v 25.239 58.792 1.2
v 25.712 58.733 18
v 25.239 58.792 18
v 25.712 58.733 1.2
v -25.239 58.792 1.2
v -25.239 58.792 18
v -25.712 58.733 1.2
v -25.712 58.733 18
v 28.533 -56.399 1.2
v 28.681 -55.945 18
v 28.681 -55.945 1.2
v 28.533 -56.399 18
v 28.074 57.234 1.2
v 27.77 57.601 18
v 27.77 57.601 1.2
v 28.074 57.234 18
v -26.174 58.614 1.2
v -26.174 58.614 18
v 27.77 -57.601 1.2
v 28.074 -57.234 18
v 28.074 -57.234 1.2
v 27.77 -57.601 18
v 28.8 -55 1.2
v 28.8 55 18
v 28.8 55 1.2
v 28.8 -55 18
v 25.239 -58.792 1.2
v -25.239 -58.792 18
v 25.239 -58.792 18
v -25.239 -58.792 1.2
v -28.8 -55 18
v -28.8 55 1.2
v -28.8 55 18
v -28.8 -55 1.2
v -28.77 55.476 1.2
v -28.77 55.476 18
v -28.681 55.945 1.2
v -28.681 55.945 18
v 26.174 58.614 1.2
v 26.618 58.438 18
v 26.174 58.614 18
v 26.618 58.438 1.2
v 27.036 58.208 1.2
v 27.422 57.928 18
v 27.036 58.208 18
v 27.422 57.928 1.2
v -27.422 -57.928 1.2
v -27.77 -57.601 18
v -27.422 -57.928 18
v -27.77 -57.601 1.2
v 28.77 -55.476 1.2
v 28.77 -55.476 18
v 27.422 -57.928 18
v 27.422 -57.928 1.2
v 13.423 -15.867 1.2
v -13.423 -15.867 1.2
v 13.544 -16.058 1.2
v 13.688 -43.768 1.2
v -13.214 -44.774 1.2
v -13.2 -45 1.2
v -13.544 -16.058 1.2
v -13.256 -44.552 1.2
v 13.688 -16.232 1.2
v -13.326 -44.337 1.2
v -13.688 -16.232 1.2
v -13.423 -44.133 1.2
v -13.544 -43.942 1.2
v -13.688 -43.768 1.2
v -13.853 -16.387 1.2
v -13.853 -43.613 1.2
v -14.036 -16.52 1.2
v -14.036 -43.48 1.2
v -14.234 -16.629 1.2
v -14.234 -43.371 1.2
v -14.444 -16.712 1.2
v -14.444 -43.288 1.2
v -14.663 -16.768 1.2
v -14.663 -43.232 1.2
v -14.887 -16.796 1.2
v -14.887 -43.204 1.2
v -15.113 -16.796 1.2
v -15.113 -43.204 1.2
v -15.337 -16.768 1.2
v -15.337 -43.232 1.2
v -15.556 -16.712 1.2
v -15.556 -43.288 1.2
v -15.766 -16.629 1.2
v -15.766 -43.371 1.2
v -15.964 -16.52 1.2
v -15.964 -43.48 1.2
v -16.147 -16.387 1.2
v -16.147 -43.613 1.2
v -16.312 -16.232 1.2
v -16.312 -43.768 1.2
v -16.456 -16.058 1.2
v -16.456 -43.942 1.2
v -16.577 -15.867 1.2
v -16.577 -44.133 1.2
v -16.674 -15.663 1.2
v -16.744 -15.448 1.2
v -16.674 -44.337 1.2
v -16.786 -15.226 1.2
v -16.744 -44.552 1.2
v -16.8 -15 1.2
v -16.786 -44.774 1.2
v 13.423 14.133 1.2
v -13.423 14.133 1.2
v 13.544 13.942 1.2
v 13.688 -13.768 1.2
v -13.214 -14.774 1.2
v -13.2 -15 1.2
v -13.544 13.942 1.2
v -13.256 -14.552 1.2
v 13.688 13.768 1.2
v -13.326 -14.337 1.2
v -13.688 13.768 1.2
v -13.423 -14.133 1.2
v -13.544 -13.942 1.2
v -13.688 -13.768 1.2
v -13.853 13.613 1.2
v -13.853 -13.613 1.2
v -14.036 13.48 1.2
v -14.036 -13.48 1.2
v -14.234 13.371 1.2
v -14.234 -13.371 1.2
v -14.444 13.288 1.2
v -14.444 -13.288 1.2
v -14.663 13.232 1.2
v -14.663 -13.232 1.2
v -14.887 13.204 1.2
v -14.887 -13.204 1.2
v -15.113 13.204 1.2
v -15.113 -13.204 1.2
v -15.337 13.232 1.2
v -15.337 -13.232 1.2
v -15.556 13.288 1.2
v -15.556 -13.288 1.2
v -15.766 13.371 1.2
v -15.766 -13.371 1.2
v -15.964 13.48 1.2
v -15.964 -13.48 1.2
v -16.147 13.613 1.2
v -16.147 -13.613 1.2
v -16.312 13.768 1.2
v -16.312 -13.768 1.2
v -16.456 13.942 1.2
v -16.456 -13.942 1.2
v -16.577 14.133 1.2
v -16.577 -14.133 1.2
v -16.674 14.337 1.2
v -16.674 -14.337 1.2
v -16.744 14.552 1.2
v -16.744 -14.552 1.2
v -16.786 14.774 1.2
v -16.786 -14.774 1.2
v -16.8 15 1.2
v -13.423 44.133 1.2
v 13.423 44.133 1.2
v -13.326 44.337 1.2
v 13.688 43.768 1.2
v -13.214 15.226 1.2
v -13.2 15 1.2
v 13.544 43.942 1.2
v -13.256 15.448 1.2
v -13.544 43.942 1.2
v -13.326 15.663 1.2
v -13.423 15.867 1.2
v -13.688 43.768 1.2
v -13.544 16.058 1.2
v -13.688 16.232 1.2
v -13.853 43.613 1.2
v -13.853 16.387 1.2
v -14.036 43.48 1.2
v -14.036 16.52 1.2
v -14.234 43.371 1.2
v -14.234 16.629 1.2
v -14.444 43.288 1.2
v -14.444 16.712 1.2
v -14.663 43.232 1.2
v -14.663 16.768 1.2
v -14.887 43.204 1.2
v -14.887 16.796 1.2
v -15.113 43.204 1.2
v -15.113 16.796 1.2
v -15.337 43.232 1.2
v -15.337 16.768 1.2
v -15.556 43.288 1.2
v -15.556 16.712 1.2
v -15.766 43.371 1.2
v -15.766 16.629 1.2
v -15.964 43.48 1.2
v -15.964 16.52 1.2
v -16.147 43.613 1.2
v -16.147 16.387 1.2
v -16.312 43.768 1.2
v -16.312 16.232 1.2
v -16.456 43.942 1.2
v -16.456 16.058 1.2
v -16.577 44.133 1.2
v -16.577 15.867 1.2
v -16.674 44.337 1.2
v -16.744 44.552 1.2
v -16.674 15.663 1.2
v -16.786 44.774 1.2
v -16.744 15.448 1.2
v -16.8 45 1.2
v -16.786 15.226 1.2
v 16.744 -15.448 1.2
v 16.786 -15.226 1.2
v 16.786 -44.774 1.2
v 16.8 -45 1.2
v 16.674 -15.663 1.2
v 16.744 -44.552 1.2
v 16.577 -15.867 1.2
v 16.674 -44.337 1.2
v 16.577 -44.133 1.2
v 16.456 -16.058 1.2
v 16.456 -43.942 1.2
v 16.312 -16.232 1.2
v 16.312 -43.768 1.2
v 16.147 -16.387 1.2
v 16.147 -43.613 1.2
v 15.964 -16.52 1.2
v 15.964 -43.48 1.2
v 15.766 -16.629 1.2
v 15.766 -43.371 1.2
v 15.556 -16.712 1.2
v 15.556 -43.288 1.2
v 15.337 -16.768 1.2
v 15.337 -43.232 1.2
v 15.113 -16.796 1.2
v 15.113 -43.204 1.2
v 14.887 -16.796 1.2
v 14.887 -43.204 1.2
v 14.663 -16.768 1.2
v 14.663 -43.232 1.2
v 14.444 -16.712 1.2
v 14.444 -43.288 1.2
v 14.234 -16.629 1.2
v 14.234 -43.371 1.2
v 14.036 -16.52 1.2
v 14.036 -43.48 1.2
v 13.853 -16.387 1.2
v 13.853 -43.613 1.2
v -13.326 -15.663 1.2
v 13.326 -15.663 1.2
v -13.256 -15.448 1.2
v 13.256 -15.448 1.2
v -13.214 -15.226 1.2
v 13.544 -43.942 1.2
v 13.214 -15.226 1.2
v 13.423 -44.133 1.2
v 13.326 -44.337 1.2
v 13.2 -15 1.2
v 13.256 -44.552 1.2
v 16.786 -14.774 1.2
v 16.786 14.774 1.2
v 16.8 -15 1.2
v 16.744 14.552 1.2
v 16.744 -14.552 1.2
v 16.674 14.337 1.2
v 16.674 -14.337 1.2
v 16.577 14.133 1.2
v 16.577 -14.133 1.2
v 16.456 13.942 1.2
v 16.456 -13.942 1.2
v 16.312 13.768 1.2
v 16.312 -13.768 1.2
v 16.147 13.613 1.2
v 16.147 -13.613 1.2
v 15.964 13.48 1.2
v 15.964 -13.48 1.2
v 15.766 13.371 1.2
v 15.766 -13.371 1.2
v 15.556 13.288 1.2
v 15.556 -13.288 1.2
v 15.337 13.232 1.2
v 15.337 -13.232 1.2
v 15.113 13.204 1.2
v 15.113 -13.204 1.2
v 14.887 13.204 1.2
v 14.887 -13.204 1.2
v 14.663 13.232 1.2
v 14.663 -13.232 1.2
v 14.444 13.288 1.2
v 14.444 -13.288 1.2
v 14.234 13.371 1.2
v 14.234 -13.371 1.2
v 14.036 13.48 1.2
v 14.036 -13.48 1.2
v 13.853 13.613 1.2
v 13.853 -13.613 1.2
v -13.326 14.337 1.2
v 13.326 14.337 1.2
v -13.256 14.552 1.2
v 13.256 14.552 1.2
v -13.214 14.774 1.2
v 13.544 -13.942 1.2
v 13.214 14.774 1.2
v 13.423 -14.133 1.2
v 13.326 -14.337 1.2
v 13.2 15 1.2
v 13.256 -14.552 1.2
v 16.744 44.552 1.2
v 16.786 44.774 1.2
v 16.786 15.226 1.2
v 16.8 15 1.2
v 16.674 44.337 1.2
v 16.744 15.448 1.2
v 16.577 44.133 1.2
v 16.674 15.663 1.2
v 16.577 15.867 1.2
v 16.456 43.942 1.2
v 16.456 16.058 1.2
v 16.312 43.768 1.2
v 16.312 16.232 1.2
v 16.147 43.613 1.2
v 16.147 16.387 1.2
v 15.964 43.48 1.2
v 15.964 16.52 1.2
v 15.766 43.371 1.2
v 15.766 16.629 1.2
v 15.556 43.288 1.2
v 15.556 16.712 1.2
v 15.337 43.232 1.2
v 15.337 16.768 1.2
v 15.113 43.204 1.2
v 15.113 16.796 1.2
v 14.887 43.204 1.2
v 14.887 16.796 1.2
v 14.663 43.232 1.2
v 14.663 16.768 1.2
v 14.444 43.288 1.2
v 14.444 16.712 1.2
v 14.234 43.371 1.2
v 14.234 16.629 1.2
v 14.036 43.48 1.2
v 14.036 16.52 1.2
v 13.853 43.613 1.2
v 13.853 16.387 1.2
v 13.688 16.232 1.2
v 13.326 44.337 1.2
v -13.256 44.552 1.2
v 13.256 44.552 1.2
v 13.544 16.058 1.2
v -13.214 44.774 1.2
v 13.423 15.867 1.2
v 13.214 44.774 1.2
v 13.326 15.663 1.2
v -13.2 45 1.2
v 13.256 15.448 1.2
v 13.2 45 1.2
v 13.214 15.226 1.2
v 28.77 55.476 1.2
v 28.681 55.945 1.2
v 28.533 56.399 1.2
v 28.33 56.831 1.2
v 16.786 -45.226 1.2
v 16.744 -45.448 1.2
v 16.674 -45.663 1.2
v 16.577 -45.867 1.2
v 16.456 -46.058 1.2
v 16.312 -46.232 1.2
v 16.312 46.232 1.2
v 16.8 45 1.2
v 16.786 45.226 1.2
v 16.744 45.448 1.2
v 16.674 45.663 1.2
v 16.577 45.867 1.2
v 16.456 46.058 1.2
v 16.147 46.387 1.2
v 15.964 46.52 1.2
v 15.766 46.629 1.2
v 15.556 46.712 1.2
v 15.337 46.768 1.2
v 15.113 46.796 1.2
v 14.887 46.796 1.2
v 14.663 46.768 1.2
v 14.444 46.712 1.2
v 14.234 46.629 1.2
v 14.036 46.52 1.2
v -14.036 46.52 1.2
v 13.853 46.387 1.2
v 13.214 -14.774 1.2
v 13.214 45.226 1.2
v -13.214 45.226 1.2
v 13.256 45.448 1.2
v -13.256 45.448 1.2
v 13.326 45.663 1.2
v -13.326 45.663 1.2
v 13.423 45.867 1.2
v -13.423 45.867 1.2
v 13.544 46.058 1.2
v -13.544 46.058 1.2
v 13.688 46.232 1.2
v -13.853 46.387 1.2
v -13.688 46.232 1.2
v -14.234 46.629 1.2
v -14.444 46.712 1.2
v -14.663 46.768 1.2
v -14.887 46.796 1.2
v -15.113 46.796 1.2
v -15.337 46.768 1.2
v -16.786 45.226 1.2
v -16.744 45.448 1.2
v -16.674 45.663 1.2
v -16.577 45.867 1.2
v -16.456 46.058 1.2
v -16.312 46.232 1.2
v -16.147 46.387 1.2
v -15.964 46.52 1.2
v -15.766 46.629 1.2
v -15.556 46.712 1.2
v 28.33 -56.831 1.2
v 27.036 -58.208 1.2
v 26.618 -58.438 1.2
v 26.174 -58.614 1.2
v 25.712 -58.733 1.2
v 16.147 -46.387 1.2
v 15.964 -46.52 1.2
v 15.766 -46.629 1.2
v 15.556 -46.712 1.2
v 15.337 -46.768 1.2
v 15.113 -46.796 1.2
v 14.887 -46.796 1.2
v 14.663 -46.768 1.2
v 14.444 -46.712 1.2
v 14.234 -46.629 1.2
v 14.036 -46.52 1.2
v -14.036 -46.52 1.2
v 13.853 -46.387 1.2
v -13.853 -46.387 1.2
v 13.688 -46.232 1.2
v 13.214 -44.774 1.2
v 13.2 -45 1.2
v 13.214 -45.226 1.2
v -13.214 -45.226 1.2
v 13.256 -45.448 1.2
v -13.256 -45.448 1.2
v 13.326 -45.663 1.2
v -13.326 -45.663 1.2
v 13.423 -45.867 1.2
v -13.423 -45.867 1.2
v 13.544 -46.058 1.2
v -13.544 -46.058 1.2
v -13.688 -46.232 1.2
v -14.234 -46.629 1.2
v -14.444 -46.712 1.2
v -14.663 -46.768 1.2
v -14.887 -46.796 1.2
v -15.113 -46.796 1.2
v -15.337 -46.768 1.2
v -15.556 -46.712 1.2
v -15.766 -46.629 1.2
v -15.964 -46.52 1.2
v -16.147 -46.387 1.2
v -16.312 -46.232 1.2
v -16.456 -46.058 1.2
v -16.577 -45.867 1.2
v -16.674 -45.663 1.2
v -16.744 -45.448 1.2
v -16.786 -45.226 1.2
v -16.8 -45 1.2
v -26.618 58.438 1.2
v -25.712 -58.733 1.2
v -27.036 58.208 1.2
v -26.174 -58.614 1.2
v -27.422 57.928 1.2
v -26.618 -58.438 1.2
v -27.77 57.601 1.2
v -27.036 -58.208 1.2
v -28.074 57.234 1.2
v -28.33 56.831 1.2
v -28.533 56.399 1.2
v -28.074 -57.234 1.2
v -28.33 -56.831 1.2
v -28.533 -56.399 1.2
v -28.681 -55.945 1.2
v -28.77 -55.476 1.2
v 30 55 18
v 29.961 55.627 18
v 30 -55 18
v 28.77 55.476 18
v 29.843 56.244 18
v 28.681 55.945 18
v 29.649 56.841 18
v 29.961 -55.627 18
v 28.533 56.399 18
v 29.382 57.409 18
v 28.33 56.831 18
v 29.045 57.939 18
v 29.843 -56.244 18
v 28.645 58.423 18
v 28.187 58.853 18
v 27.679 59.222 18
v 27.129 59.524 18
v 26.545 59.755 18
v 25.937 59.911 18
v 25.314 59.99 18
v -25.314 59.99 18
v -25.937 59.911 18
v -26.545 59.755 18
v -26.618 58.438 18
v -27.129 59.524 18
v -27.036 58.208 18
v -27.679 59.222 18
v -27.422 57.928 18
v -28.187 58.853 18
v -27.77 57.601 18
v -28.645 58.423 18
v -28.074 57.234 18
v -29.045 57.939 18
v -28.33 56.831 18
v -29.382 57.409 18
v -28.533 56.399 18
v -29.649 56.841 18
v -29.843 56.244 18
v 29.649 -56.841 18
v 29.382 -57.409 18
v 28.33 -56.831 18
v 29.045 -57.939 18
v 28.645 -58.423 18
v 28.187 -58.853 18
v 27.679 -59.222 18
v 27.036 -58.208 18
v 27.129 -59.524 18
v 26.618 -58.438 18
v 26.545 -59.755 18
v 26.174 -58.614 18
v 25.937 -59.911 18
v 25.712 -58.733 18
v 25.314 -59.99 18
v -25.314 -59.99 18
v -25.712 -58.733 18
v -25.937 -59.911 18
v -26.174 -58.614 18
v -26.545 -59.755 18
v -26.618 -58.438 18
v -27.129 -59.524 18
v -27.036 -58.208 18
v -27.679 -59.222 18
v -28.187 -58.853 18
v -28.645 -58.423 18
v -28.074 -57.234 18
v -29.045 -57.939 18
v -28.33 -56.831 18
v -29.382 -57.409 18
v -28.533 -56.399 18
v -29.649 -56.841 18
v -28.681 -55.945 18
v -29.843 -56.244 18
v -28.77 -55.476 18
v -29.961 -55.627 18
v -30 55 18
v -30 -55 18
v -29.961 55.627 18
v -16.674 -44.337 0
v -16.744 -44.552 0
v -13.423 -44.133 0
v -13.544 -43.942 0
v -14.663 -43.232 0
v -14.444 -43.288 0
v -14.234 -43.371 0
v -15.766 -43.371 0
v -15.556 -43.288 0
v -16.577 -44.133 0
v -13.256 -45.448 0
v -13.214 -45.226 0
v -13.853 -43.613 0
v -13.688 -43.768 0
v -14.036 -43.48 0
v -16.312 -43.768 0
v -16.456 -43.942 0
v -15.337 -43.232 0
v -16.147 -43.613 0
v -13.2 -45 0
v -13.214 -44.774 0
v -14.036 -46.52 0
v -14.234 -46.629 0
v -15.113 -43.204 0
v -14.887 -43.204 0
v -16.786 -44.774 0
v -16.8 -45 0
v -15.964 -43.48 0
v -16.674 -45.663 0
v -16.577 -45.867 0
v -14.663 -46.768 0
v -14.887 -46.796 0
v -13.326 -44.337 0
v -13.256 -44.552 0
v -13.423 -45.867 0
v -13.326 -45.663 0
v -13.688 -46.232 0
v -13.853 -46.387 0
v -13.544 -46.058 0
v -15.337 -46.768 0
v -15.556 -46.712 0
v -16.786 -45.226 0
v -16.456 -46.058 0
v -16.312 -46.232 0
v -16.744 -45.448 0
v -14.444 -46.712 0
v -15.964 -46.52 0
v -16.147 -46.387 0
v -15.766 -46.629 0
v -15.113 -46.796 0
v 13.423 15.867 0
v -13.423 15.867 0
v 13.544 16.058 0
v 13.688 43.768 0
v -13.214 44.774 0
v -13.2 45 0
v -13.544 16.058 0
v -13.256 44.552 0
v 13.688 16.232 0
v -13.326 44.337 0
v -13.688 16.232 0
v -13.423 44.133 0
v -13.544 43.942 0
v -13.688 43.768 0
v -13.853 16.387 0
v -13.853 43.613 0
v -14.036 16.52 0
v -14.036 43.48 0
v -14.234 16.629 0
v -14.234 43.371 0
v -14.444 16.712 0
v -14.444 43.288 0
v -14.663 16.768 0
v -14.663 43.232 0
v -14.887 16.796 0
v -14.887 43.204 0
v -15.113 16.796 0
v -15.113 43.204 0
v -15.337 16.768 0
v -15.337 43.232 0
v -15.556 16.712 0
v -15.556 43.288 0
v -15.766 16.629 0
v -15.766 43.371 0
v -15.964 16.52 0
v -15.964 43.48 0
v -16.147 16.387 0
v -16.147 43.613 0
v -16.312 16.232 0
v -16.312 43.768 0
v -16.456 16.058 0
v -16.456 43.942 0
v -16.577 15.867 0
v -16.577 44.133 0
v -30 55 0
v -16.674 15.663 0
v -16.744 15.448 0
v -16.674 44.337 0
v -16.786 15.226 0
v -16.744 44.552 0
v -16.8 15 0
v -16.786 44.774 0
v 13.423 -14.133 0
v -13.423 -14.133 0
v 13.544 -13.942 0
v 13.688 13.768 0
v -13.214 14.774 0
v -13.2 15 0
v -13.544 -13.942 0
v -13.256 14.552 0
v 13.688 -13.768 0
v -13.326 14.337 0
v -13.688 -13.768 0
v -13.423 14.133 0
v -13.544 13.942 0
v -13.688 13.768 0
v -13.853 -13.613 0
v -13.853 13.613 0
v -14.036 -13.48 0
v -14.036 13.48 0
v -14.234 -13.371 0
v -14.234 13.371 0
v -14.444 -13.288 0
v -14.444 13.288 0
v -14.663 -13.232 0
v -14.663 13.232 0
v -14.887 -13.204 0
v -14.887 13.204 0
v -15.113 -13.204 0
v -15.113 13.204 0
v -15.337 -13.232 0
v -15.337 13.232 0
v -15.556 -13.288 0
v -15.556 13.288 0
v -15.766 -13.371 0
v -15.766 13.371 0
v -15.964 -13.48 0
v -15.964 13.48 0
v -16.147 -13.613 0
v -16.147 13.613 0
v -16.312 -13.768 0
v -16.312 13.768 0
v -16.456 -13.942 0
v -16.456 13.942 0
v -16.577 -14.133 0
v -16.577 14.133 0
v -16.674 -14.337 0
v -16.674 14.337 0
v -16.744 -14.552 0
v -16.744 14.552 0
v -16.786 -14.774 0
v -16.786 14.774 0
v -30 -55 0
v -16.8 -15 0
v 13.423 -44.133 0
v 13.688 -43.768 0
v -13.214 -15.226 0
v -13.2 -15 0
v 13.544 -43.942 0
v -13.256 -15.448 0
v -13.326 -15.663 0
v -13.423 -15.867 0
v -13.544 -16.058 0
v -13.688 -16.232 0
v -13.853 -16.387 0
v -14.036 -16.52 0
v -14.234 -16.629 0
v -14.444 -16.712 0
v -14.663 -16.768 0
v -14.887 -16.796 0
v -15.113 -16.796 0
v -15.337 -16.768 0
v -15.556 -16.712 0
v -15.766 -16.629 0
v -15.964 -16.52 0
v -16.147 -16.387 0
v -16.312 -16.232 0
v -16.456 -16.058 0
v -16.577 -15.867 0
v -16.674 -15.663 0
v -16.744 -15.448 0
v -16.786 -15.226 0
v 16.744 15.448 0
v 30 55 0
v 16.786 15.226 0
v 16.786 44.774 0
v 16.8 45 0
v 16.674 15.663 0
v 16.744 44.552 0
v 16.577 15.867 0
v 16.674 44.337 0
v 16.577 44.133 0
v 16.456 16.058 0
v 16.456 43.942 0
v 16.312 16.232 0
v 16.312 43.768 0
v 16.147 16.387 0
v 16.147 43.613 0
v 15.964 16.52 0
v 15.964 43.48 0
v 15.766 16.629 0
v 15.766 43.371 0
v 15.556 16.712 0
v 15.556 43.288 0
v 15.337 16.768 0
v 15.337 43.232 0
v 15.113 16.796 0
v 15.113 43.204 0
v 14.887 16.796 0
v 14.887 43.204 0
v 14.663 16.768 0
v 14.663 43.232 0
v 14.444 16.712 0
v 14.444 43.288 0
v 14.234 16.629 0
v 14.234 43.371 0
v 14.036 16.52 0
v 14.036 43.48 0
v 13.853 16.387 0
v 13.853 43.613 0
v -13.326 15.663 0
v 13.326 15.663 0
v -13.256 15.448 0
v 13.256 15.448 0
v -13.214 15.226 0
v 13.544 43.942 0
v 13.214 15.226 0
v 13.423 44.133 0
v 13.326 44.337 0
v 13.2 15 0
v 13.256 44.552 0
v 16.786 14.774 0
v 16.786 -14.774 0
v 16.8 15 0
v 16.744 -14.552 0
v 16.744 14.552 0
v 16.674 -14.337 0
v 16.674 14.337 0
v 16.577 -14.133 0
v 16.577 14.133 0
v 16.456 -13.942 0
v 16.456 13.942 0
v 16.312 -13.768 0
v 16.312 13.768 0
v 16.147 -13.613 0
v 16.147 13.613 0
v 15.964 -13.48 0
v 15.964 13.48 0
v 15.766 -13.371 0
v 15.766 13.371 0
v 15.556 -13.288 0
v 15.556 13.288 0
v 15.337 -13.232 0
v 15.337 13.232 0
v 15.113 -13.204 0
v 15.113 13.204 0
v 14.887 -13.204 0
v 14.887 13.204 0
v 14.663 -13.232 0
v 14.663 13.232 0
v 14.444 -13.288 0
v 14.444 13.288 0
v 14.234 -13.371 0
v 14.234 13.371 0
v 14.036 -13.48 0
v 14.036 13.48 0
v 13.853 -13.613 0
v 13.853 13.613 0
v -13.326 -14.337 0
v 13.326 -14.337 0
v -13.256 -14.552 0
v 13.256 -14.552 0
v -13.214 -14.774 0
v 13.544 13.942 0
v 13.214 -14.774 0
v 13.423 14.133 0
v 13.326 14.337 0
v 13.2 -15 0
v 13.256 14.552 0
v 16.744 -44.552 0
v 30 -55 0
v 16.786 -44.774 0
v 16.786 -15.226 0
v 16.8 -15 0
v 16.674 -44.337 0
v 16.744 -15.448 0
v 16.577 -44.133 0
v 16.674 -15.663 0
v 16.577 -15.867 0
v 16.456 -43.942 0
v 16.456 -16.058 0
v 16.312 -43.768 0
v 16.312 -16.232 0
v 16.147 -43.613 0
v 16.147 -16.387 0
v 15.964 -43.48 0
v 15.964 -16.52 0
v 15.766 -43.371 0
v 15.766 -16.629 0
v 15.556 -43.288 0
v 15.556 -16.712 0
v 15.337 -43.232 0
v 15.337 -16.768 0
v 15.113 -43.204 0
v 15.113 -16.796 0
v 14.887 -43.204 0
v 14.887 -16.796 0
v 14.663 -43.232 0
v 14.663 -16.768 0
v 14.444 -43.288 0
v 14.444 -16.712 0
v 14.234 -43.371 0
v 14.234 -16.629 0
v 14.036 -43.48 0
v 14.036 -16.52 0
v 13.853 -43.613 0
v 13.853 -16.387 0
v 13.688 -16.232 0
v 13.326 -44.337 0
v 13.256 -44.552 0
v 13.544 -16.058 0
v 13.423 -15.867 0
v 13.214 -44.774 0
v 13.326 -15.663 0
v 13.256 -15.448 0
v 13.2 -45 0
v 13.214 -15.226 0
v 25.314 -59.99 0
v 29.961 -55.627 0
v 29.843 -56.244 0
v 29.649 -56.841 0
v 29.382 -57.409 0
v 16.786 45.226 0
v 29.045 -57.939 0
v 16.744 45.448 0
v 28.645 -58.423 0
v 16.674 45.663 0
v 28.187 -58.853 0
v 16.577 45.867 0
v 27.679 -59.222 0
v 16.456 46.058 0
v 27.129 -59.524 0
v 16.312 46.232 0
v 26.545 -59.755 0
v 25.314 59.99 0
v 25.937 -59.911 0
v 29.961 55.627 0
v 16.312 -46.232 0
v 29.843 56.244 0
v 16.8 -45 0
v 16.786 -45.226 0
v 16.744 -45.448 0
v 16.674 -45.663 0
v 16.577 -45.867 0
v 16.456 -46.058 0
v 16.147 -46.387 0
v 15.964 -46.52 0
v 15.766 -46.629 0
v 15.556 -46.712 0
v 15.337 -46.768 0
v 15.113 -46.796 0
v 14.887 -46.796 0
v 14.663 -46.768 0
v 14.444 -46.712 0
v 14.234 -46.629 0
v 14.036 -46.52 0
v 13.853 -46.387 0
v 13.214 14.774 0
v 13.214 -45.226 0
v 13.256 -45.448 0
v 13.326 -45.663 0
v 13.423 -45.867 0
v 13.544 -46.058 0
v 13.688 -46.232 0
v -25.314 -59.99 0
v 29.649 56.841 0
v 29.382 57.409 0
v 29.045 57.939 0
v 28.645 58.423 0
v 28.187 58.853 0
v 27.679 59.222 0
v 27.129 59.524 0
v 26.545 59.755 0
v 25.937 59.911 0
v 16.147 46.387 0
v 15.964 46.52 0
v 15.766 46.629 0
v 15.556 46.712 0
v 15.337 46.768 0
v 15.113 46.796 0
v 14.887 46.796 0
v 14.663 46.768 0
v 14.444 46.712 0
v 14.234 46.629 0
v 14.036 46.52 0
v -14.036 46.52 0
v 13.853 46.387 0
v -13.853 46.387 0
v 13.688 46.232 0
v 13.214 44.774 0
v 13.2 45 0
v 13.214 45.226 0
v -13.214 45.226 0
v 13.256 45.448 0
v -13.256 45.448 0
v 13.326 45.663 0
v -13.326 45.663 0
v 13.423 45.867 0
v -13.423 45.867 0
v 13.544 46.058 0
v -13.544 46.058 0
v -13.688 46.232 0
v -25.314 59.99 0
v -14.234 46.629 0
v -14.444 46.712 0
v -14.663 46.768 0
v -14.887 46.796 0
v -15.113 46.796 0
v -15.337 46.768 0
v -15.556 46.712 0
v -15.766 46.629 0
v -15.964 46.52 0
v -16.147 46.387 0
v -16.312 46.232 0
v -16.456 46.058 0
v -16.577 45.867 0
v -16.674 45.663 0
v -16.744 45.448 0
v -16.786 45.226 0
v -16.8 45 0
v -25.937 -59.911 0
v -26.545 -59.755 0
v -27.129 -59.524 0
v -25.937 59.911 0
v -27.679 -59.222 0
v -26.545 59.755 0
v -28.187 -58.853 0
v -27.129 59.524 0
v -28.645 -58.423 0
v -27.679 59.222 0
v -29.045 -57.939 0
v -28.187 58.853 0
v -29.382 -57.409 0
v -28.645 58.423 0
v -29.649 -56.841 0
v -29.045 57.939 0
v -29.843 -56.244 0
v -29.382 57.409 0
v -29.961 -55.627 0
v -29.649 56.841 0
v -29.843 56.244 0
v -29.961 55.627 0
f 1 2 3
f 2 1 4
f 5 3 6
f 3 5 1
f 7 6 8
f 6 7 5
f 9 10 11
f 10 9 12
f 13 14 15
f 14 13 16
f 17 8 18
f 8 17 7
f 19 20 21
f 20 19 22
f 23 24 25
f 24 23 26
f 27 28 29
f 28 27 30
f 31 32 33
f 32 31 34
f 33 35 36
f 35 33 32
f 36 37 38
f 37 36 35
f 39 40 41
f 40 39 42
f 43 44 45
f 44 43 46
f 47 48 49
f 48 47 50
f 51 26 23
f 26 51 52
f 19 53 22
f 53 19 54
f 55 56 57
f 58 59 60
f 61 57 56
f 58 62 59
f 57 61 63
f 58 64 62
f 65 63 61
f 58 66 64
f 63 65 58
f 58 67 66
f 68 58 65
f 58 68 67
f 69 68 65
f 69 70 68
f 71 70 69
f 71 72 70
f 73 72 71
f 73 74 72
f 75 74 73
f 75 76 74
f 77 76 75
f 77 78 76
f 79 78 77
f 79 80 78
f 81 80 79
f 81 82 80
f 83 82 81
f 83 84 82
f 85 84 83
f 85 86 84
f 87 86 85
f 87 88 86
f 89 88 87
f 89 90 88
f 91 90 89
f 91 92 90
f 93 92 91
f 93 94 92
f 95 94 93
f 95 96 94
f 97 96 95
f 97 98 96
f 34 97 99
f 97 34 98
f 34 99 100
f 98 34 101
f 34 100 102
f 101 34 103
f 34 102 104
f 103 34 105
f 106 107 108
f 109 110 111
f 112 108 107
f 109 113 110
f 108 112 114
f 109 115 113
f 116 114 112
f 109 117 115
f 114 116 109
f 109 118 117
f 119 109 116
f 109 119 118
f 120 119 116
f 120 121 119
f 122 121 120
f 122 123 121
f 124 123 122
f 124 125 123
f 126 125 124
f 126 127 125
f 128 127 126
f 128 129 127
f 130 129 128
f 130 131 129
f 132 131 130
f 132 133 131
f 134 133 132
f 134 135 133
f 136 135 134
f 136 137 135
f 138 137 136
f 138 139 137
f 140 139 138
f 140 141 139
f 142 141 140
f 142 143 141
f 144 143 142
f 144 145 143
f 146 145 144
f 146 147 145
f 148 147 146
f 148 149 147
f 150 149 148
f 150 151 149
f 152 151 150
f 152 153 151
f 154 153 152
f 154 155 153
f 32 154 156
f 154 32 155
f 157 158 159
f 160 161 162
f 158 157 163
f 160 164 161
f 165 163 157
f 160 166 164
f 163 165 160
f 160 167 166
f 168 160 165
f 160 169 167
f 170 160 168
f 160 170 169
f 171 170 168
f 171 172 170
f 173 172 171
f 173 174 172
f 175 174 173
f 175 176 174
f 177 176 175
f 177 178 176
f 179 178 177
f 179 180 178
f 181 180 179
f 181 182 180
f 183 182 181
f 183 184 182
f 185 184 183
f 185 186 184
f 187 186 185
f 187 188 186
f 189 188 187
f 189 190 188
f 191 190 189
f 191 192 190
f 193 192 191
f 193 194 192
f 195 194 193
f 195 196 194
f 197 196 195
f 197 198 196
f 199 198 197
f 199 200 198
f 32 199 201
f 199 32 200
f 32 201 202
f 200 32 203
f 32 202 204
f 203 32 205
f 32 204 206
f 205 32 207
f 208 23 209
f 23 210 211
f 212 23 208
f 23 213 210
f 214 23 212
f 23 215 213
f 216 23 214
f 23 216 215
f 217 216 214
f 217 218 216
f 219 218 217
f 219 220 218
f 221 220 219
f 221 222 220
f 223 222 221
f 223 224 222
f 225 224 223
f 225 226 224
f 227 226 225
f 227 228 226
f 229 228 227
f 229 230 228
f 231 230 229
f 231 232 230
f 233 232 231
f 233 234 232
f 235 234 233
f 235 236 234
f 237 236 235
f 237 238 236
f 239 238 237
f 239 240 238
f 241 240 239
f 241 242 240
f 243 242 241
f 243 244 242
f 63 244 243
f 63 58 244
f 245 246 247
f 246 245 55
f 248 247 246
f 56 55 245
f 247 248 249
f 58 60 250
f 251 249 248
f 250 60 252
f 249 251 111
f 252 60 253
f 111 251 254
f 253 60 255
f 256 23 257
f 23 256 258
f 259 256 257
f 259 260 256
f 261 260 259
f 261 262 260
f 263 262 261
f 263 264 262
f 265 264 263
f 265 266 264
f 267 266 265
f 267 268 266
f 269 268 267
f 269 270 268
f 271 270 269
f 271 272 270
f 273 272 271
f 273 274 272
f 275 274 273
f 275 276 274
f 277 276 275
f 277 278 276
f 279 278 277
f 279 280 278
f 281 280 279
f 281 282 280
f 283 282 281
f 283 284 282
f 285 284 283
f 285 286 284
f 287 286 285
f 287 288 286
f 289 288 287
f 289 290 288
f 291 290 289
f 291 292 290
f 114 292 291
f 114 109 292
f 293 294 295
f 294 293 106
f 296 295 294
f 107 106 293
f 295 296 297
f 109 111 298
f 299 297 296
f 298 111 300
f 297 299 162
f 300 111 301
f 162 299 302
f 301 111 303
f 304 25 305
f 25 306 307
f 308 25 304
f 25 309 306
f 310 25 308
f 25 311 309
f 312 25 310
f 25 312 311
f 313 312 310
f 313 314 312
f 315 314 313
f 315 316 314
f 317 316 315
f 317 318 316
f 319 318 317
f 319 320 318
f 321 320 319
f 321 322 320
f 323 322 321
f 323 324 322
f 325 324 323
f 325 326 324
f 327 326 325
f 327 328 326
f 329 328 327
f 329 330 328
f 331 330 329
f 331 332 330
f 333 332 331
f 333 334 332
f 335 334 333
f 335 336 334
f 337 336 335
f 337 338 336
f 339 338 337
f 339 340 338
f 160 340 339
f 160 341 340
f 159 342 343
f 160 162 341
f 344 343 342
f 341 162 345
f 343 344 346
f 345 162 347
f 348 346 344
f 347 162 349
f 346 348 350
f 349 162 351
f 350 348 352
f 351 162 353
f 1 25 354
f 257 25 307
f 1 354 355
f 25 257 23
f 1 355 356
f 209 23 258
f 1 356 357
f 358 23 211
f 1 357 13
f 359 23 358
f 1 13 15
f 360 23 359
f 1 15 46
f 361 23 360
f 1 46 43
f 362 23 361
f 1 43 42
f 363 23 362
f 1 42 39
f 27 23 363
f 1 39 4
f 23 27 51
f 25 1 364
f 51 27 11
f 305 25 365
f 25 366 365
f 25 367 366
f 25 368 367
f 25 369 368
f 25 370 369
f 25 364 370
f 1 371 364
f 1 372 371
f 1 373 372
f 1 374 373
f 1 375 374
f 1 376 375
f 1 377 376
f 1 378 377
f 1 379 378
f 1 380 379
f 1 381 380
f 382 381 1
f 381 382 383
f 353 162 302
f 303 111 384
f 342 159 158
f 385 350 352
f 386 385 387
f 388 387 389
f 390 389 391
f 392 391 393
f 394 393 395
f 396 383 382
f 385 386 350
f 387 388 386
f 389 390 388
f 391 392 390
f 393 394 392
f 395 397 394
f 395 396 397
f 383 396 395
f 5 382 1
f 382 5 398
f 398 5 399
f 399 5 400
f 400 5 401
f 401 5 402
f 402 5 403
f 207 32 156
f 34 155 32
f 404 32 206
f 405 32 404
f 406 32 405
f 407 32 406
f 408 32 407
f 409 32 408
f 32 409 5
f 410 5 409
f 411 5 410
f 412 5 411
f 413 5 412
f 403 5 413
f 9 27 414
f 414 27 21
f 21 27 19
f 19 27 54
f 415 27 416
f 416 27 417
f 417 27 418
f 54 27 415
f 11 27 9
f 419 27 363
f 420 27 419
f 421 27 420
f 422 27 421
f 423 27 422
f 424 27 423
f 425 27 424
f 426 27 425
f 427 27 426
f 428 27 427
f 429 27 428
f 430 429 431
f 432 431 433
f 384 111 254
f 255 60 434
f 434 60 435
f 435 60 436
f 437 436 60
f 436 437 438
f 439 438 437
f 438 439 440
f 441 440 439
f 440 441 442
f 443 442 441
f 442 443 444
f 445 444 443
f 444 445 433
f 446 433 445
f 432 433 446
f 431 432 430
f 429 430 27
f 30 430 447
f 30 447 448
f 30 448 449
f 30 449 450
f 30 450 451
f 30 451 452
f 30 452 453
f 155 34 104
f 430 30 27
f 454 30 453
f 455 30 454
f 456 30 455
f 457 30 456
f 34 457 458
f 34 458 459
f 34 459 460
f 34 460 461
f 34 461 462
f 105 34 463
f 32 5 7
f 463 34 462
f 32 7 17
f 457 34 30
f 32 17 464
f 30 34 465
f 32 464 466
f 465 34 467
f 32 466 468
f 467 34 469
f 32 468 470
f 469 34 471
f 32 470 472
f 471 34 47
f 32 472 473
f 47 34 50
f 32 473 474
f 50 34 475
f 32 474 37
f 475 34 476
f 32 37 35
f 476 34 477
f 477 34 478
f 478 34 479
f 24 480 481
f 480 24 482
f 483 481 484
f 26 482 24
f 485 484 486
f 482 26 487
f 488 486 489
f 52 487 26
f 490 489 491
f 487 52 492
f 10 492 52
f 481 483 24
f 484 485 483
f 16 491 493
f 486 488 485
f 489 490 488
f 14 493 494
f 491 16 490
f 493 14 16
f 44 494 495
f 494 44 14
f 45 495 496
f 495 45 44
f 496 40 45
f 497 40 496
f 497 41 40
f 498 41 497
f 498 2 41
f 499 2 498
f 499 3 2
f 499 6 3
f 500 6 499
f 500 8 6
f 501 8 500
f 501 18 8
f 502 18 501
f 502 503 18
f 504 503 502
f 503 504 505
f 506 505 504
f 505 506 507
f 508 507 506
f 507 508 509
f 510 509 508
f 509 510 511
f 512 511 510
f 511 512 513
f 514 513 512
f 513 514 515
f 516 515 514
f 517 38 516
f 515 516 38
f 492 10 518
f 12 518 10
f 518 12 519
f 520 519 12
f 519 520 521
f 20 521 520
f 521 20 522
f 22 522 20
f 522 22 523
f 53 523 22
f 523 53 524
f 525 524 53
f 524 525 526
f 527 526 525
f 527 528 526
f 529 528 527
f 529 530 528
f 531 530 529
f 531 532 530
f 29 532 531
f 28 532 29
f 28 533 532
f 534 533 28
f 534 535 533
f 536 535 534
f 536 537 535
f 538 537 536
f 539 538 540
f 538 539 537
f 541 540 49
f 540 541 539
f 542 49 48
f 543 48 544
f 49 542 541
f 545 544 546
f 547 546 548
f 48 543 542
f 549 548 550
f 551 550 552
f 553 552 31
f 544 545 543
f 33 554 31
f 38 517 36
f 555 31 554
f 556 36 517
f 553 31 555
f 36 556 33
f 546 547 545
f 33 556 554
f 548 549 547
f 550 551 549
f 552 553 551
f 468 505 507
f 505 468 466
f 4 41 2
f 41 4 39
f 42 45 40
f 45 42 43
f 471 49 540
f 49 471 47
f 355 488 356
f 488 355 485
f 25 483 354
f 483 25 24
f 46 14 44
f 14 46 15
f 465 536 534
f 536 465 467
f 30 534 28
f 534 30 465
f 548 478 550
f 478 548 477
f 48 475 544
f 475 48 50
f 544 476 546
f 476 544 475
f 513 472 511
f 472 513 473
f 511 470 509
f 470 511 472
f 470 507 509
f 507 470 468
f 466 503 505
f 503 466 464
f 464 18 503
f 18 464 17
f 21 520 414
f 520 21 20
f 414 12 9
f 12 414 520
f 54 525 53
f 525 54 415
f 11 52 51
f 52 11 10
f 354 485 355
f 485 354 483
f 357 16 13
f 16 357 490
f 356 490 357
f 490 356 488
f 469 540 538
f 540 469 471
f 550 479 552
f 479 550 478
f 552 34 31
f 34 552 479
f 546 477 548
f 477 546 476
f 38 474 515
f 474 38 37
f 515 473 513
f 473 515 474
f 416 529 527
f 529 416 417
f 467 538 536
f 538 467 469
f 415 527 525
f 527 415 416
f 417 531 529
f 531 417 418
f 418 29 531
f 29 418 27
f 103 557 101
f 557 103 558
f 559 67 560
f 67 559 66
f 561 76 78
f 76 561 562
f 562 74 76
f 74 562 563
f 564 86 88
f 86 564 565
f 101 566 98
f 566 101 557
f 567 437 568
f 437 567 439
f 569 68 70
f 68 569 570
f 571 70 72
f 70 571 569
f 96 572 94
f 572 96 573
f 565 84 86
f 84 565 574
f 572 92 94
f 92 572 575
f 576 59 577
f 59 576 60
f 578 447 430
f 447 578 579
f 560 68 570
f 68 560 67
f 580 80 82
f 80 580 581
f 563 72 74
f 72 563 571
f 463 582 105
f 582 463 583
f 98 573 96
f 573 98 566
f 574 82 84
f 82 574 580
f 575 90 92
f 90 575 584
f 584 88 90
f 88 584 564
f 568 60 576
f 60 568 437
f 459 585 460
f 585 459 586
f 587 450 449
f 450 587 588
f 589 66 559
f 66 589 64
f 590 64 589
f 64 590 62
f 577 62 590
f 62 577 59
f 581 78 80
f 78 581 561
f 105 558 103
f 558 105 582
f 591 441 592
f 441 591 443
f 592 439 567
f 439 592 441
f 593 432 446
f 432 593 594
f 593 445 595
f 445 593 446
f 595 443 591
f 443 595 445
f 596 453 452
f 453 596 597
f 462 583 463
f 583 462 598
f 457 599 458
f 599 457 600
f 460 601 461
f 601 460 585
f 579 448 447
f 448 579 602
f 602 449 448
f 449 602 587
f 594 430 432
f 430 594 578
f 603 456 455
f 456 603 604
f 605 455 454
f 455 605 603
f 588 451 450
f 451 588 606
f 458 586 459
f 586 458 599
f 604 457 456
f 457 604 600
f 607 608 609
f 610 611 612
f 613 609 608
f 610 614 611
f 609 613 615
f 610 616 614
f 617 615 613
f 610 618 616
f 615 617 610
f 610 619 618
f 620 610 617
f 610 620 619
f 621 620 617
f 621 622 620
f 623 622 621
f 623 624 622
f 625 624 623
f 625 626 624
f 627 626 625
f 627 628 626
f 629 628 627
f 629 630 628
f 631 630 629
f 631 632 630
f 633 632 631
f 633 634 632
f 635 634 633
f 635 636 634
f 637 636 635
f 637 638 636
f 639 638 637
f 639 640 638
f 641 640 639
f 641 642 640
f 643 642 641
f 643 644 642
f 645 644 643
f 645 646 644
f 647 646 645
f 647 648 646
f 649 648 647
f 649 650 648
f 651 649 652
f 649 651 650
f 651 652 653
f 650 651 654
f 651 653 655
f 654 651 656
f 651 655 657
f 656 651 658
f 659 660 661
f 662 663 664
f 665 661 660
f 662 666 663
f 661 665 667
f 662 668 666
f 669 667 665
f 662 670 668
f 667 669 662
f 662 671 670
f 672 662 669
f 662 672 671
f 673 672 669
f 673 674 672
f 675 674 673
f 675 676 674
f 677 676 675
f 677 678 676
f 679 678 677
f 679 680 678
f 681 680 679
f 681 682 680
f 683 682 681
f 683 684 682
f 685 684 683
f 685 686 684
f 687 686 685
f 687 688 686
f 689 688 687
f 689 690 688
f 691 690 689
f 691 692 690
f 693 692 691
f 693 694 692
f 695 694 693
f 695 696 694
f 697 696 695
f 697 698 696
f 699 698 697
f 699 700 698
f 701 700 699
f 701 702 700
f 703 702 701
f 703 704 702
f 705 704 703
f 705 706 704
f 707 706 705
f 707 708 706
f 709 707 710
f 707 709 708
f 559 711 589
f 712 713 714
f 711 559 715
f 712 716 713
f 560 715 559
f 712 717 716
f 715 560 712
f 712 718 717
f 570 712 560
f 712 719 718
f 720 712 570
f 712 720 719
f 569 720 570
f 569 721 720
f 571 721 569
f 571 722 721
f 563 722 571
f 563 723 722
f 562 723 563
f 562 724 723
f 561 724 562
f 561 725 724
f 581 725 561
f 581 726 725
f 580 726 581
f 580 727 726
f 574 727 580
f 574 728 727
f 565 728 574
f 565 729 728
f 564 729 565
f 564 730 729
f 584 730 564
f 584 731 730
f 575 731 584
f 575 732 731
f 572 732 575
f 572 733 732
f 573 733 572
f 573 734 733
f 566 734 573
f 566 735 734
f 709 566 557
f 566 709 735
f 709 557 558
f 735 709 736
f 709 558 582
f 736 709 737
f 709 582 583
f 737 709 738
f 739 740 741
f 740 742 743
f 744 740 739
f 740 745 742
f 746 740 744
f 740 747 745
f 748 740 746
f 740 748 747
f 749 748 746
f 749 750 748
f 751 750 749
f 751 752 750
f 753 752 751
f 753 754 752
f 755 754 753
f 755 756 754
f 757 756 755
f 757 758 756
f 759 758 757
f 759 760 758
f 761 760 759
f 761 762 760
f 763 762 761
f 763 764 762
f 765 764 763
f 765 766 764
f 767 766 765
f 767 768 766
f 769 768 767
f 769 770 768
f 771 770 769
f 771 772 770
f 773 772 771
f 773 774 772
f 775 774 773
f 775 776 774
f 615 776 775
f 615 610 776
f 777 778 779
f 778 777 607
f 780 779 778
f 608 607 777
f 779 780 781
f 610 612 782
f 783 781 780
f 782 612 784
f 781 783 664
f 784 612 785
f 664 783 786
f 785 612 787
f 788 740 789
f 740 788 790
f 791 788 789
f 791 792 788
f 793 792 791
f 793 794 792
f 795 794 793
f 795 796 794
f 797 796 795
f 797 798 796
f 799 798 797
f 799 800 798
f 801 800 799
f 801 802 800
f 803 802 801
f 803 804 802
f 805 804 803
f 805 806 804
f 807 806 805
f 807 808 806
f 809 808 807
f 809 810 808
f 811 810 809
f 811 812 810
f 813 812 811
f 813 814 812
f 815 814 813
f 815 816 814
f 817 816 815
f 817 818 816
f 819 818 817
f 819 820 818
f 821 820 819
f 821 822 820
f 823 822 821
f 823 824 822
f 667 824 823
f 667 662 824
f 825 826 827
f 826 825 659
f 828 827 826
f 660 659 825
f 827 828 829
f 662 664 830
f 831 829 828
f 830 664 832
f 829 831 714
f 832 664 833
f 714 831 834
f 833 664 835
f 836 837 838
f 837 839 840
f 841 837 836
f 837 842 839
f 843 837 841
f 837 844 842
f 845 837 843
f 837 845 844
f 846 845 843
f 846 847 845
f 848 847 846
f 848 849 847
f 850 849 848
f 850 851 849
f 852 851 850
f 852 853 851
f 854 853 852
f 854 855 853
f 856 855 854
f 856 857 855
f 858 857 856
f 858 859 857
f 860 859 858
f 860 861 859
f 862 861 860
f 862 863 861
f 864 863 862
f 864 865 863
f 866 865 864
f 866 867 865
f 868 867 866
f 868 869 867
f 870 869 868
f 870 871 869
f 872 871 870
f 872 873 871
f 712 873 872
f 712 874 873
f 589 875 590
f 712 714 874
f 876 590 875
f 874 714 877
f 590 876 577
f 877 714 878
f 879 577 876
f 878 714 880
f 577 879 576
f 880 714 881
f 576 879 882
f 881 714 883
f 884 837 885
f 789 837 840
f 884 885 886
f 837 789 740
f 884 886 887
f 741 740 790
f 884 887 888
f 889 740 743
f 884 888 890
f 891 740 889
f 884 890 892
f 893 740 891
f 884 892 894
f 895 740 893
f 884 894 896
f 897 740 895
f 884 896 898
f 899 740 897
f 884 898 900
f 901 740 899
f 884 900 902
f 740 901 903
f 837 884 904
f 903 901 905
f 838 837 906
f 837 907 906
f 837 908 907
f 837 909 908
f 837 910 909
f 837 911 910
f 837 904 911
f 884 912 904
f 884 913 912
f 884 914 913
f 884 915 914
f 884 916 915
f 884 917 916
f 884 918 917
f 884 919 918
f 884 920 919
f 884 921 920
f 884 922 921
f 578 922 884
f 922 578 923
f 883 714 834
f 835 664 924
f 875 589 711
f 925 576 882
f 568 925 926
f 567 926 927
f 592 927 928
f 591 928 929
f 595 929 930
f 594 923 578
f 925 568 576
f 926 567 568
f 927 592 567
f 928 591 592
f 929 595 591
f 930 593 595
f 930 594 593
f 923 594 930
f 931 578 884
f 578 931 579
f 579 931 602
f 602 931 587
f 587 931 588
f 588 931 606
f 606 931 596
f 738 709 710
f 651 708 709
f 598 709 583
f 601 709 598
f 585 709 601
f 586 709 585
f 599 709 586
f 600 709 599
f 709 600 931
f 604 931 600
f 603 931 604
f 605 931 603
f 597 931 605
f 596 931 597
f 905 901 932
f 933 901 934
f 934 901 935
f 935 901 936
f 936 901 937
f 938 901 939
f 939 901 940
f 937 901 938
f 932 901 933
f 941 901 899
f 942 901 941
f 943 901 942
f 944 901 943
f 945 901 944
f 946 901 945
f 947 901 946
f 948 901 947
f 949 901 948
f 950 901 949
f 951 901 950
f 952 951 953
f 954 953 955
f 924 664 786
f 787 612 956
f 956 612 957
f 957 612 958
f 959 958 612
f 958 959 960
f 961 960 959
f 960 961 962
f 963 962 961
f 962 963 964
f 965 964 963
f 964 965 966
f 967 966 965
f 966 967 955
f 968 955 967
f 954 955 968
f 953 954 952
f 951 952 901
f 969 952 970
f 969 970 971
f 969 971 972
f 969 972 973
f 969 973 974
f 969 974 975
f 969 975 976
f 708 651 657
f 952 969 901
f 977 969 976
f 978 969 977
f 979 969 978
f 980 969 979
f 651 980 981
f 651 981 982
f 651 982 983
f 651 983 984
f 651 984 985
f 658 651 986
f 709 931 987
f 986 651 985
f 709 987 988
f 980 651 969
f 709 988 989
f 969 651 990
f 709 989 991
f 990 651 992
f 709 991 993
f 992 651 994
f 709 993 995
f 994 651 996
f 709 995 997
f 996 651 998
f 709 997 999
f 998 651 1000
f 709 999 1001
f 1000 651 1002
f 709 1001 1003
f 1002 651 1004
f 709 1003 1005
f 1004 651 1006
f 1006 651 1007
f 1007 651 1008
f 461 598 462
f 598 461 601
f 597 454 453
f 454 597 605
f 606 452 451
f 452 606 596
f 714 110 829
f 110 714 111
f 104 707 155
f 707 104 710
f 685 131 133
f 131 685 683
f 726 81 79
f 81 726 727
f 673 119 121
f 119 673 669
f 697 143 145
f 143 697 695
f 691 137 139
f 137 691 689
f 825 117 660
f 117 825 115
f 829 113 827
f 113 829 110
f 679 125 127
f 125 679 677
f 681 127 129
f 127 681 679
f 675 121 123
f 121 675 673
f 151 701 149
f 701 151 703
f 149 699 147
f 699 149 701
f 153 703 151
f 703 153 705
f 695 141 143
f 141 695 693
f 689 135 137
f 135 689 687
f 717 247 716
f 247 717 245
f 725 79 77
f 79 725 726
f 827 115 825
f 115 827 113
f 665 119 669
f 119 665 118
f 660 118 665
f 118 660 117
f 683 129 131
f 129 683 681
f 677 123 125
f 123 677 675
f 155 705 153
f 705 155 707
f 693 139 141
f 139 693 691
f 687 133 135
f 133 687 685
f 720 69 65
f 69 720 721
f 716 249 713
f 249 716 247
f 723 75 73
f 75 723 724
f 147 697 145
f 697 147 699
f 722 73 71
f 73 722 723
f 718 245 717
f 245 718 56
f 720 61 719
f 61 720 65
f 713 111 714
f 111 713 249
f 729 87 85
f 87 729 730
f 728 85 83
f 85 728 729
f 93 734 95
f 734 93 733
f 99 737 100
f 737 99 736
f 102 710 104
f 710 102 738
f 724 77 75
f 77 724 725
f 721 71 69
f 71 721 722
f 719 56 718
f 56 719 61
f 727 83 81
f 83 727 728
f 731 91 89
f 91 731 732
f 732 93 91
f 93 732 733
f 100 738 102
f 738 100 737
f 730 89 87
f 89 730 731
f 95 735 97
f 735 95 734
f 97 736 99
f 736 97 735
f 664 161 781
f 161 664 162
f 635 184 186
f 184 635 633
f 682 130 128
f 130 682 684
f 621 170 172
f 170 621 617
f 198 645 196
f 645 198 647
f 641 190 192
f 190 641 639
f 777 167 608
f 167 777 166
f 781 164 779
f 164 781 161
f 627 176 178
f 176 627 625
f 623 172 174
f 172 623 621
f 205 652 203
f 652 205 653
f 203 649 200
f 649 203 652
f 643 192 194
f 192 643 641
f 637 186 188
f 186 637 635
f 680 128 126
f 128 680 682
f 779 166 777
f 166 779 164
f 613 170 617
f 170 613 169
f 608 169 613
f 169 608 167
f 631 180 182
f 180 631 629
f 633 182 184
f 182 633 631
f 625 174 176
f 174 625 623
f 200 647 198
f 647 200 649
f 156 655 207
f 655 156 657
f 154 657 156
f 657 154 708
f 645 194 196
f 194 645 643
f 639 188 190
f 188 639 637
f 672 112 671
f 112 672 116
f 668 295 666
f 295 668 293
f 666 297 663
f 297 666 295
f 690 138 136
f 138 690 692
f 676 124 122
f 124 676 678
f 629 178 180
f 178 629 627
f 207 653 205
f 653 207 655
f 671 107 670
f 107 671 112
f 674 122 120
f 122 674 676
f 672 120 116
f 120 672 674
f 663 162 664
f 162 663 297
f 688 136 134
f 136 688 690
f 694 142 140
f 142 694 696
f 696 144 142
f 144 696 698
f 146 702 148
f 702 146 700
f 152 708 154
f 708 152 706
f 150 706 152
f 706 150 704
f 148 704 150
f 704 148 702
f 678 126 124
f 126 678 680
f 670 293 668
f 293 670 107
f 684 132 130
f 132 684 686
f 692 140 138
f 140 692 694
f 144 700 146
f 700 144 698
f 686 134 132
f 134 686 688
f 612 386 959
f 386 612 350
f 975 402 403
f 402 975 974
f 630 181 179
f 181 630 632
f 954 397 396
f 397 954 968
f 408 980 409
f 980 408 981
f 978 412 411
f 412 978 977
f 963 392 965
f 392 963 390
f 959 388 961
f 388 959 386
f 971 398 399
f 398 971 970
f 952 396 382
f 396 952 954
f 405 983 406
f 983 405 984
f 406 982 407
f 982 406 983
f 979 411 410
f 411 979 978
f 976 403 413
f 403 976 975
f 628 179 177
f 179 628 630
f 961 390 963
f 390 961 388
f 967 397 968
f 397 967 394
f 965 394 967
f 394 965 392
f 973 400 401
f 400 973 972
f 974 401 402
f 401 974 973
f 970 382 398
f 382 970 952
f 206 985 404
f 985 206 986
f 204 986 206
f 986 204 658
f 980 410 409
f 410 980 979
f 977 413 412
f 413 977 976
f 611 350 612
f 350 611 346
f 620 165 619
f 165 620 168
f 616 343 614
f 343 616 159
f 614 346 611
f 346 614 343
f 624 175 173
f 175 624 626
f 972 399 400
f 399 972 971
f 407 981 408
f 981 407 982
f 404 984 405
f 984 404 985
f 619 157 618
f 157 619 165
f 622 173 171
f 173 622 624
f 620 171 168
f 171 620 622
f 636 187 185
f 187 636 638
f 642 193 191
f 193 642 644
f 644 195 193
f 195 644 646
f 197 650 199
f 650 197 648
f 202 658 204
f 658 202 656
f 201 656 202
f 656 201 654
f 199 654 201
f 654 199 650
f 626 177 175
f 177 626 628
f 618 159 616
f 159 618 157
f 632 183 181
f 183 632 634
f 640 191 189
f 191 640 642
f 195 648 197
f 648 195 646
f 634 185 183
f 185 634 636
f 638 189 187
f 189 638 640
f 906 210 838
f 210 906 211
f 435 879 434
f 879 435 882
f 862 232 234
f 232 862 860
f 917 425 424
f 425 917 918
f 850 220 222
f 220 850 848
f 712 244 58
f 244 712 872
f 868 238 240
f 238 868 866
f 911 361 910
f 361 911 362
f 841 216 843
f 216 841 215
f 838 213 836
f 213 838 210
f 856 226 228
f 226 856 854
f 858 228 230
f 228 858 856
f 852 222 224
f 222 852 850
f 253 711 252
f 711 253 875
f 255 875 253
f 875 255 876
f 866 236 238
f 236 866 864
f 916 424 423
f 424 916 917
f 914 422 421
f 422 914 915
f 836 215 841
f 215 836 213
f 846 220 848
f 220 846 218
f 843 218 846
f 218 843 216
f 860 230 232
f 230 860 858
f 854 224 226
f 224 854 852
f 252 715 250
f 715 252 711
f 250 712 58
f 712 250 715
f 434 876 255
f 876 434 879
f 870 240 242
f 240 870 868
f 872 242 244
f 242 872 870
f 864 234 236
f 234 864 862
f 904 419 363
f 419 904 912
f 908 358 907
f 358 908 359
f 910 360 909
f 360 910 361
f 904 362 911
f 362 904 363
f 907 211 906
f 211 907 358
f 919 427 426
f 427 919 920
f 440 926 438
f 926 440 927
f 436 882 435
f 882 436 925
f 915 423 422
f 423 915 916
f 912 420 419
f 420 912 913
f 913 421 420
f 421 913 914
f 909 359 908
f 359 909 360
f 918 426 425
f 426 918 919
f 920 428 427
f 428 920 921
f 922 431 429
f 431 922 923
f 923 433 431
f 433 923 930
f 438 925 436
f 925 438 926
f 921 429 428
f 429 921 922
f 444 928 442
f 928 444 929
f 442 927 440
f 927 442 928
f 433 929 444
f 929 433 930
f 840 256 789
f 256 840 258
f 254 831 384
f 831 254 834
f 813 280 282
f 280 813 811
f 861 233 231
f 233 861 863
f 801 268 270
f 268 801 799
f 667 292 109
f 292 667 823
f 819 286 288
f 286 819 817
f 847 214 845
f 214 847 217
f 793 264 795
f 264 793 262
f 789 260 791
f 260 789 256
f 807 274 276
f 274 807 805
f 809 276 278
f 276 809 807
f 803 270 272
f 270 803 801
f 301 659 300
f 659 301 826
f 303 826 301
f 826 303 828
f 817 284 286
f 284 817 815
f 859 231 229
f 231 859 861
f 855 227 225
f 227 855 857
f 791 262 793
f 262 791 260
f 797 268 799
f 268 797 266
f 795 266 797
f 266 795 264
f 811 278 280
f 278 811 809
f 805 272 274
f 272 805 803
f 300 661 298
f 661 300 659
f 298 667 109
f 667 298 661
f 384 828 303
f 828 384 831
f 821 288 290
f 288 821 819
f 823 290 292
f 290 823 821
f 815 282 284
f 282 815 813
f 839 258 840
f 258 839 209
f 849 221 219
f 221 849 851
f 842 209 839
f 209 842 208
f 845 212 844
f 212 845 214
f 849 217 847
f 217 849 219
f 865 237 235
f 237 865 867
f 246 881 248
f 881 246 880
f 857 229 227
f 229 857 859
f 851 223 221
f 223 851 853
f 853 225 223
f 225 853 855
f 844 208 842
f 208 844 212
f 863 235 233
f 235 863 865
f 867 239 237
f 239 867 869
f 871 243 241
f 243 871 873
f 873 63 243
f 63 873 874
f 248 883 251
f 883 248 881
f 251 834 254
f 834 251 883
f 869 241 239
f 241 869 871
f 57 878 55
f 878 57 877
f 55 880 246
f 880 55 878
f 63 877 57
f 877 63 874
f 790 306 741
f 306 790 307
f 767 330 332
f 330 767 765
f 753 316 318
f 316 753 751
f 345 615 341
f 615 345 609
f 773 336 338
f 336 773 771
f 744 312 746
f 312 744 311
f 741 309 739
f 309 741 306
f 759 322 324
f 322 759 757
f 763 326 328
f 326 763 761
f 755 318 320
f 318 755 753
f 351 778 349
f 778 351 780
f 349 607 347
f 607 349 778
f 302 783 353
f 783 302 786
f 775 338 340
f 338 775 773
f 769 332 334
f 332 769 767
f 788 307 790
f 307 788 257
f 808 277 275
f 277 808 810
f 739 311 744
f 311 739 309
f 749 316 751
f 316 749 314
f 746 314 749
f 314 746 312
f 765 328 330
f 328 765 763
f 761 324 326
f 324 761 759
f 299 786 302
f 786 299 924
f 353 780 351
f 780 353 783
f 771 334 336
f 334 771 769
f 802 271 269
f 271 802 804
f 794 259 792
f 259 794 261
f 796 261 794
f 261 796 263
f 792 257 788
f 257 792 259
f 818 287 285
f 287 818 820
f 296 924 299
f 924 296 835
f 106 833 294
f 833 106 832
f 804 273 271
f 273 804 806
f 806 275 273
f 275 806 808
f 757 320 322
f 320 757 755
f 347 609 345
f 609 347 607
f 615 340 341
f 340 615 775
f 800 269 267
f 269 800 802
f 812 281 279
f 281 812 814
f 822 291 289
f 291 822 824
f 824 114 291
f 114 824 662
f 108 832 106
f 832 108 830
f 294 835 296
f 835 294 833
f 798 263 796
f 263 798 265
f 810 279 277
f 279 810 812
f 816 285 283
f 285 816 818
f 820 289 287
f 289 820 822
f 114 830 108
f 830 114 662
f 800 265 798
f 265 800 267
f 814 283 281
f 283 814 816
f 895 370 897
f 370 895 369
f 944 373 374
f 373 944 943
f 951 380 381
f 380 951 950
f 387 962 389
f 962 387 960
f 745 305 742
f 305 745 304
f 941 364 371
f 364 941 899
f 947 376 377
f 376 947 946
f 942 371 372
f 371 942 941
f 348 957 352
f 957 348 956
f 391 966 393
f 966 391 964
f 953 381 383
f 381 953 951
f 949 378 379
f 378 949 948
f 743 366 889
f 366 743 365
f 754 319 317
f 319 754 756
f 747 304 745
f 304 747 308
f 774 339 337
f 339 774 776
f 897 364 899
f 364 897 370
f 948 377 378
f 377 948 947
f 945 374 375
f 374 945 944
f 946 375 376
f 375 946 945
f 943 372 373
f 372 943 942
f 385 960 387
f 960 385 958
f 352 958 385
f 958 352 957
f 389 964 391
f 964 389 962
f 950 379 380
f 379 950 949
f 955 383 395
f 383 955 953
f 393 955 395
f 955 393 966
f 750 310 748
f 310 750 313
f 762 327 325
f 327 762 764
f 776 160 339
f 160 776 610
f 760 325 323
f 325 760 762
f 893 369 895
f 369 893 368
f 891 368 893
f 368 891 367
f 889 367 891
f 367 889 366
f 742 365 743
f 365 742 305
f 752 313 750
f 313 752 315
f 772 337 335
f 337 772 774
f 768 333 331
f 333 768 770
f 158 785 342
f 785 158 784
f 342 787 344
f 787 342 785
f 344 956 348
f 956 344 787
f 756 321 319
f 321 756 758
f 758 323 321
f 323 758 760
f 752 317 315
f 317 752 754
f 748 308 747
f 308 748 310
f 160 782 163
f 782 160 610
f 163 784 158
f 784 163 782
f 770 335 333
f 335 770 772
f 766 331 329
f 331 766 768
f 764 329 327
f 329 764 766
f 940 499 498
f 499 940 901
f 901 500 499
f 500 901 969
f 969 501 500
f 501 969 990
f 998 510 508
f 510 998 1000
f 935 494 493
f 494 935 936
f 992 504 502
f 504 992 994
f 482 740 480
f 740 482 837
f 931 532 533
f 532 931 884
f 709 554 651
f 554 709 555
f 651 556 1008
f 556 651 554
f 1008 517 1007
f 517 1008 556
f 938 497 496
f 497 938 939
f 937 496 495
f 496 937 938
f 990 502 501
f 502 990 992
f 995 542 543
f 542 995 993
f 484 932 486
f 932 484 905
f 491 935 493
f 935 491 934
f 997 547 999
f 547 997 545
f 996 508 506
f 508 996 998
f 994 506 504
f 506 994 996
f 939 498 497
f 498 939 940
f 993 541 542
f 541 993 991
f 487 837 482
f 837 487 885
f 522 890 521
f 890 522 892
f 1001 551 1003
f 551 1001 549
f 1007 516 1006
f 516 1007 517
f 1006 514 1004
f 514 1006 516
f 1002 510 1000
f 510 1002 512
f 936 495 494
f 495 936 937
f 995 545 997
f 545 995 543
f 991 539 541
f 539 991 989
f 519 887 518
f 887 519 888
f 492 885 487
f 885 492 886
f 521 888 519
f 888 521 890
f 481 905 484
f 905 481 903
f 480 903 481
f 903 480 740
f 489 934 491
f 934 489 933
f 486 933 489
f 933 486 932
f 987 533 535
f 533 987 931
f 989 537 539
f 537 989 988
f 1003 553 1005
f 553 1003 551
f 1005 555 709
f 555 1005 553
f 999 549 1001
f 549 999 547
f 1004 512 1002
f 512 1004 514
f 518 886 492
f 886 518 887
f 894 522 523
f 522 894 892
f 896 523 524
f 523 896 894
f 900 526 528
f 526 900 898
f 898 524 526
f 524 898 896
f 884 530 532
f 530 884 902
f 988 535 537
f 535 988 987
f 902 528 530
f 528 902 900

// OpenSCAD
$fn = 50;


difference() {
	union() {
		hull() {
			translate(v = [-25.0000000000, 55.0000000000, 0]) {
				cylinder(h = 18, r = 5);
			}
			translate(v = [25.0000000000, 55.0000000000, 0]) {
				cylinder(h = 18, r = 5);
			}
			translate(v = [-25.0000000000, -55.0000000000, 0]) {
				cylinder(h = 18, r = 5);
			}
			translate(v = [25.0000000000, -55.0000000000, 0]) {
				cylinder(h = 18, r = 5);
			}
		}
	}
	union() {
		translate(v = [0, 0, 1.2000000000]) {
			hull() {
				translate(v = [-25.0000000000, 55.0000000000, 0]) {
					cylinder(h = 16.8000000000, r = 3.8000000000);
				}
				translate(v = [25.0000000000, 55.0000000000, 0]) {
					cylinder(h = 16.8000000000, r = 3.8000000000);
				}
				translate(v = [-25.0000000000, -55.0000000000, 0]) {
					cylinder(h = 16.8000000000, r = 3.8000000000);
				}
				translate(v = [25.0000000000, -55.0000000000, 0]) {
					cylinder(h = 16.8000000000, r = 3.8000000000);
				}
			}
		}
		#translate(v = [-15.0000000000, -45.0000000000, 0]) {
			cylinder(h = 1.2000000000, r = 1.8000000000);
		}
		#translate(v = [-15.0000000000, -15.0000000000, 0]) {
			cylinder(h = 1.2000000000, r = 1.8000000000);
		}
		#translate(v = [-15.0000000000, 15.0000000000, 0]) {
			cylinder(h = 1.2000000000, r = 1.8000000000);
		}
		#translate(v = [-15.0000000000, 45.0000000000, 0]) {
			cylinder(h = 1.2000000000, r = 1.8000000000);
		}
		#translate(v = [15.0000000000, -45.0000000000, 0]) {
			cylinder(h = 1.2000000000, r = 1.8000000000);
		}
		#translate(v = [15.0000000000, -15.0000000000, 0]) {
			cylinder(h = 1.2000000000, r = 1.8000000000);
		}
		#translate(v = [15.0000000000, 15.0000000000, 0]) {
			cylinder(h = 1.2000000000, r = 1.8000000000);
		}
		#translate(v = [15.0000000000, 45.0000000000, 0]) {
			cylinder(h = 1.2000000000, r = 1.8000000000);
		}
	}
}
